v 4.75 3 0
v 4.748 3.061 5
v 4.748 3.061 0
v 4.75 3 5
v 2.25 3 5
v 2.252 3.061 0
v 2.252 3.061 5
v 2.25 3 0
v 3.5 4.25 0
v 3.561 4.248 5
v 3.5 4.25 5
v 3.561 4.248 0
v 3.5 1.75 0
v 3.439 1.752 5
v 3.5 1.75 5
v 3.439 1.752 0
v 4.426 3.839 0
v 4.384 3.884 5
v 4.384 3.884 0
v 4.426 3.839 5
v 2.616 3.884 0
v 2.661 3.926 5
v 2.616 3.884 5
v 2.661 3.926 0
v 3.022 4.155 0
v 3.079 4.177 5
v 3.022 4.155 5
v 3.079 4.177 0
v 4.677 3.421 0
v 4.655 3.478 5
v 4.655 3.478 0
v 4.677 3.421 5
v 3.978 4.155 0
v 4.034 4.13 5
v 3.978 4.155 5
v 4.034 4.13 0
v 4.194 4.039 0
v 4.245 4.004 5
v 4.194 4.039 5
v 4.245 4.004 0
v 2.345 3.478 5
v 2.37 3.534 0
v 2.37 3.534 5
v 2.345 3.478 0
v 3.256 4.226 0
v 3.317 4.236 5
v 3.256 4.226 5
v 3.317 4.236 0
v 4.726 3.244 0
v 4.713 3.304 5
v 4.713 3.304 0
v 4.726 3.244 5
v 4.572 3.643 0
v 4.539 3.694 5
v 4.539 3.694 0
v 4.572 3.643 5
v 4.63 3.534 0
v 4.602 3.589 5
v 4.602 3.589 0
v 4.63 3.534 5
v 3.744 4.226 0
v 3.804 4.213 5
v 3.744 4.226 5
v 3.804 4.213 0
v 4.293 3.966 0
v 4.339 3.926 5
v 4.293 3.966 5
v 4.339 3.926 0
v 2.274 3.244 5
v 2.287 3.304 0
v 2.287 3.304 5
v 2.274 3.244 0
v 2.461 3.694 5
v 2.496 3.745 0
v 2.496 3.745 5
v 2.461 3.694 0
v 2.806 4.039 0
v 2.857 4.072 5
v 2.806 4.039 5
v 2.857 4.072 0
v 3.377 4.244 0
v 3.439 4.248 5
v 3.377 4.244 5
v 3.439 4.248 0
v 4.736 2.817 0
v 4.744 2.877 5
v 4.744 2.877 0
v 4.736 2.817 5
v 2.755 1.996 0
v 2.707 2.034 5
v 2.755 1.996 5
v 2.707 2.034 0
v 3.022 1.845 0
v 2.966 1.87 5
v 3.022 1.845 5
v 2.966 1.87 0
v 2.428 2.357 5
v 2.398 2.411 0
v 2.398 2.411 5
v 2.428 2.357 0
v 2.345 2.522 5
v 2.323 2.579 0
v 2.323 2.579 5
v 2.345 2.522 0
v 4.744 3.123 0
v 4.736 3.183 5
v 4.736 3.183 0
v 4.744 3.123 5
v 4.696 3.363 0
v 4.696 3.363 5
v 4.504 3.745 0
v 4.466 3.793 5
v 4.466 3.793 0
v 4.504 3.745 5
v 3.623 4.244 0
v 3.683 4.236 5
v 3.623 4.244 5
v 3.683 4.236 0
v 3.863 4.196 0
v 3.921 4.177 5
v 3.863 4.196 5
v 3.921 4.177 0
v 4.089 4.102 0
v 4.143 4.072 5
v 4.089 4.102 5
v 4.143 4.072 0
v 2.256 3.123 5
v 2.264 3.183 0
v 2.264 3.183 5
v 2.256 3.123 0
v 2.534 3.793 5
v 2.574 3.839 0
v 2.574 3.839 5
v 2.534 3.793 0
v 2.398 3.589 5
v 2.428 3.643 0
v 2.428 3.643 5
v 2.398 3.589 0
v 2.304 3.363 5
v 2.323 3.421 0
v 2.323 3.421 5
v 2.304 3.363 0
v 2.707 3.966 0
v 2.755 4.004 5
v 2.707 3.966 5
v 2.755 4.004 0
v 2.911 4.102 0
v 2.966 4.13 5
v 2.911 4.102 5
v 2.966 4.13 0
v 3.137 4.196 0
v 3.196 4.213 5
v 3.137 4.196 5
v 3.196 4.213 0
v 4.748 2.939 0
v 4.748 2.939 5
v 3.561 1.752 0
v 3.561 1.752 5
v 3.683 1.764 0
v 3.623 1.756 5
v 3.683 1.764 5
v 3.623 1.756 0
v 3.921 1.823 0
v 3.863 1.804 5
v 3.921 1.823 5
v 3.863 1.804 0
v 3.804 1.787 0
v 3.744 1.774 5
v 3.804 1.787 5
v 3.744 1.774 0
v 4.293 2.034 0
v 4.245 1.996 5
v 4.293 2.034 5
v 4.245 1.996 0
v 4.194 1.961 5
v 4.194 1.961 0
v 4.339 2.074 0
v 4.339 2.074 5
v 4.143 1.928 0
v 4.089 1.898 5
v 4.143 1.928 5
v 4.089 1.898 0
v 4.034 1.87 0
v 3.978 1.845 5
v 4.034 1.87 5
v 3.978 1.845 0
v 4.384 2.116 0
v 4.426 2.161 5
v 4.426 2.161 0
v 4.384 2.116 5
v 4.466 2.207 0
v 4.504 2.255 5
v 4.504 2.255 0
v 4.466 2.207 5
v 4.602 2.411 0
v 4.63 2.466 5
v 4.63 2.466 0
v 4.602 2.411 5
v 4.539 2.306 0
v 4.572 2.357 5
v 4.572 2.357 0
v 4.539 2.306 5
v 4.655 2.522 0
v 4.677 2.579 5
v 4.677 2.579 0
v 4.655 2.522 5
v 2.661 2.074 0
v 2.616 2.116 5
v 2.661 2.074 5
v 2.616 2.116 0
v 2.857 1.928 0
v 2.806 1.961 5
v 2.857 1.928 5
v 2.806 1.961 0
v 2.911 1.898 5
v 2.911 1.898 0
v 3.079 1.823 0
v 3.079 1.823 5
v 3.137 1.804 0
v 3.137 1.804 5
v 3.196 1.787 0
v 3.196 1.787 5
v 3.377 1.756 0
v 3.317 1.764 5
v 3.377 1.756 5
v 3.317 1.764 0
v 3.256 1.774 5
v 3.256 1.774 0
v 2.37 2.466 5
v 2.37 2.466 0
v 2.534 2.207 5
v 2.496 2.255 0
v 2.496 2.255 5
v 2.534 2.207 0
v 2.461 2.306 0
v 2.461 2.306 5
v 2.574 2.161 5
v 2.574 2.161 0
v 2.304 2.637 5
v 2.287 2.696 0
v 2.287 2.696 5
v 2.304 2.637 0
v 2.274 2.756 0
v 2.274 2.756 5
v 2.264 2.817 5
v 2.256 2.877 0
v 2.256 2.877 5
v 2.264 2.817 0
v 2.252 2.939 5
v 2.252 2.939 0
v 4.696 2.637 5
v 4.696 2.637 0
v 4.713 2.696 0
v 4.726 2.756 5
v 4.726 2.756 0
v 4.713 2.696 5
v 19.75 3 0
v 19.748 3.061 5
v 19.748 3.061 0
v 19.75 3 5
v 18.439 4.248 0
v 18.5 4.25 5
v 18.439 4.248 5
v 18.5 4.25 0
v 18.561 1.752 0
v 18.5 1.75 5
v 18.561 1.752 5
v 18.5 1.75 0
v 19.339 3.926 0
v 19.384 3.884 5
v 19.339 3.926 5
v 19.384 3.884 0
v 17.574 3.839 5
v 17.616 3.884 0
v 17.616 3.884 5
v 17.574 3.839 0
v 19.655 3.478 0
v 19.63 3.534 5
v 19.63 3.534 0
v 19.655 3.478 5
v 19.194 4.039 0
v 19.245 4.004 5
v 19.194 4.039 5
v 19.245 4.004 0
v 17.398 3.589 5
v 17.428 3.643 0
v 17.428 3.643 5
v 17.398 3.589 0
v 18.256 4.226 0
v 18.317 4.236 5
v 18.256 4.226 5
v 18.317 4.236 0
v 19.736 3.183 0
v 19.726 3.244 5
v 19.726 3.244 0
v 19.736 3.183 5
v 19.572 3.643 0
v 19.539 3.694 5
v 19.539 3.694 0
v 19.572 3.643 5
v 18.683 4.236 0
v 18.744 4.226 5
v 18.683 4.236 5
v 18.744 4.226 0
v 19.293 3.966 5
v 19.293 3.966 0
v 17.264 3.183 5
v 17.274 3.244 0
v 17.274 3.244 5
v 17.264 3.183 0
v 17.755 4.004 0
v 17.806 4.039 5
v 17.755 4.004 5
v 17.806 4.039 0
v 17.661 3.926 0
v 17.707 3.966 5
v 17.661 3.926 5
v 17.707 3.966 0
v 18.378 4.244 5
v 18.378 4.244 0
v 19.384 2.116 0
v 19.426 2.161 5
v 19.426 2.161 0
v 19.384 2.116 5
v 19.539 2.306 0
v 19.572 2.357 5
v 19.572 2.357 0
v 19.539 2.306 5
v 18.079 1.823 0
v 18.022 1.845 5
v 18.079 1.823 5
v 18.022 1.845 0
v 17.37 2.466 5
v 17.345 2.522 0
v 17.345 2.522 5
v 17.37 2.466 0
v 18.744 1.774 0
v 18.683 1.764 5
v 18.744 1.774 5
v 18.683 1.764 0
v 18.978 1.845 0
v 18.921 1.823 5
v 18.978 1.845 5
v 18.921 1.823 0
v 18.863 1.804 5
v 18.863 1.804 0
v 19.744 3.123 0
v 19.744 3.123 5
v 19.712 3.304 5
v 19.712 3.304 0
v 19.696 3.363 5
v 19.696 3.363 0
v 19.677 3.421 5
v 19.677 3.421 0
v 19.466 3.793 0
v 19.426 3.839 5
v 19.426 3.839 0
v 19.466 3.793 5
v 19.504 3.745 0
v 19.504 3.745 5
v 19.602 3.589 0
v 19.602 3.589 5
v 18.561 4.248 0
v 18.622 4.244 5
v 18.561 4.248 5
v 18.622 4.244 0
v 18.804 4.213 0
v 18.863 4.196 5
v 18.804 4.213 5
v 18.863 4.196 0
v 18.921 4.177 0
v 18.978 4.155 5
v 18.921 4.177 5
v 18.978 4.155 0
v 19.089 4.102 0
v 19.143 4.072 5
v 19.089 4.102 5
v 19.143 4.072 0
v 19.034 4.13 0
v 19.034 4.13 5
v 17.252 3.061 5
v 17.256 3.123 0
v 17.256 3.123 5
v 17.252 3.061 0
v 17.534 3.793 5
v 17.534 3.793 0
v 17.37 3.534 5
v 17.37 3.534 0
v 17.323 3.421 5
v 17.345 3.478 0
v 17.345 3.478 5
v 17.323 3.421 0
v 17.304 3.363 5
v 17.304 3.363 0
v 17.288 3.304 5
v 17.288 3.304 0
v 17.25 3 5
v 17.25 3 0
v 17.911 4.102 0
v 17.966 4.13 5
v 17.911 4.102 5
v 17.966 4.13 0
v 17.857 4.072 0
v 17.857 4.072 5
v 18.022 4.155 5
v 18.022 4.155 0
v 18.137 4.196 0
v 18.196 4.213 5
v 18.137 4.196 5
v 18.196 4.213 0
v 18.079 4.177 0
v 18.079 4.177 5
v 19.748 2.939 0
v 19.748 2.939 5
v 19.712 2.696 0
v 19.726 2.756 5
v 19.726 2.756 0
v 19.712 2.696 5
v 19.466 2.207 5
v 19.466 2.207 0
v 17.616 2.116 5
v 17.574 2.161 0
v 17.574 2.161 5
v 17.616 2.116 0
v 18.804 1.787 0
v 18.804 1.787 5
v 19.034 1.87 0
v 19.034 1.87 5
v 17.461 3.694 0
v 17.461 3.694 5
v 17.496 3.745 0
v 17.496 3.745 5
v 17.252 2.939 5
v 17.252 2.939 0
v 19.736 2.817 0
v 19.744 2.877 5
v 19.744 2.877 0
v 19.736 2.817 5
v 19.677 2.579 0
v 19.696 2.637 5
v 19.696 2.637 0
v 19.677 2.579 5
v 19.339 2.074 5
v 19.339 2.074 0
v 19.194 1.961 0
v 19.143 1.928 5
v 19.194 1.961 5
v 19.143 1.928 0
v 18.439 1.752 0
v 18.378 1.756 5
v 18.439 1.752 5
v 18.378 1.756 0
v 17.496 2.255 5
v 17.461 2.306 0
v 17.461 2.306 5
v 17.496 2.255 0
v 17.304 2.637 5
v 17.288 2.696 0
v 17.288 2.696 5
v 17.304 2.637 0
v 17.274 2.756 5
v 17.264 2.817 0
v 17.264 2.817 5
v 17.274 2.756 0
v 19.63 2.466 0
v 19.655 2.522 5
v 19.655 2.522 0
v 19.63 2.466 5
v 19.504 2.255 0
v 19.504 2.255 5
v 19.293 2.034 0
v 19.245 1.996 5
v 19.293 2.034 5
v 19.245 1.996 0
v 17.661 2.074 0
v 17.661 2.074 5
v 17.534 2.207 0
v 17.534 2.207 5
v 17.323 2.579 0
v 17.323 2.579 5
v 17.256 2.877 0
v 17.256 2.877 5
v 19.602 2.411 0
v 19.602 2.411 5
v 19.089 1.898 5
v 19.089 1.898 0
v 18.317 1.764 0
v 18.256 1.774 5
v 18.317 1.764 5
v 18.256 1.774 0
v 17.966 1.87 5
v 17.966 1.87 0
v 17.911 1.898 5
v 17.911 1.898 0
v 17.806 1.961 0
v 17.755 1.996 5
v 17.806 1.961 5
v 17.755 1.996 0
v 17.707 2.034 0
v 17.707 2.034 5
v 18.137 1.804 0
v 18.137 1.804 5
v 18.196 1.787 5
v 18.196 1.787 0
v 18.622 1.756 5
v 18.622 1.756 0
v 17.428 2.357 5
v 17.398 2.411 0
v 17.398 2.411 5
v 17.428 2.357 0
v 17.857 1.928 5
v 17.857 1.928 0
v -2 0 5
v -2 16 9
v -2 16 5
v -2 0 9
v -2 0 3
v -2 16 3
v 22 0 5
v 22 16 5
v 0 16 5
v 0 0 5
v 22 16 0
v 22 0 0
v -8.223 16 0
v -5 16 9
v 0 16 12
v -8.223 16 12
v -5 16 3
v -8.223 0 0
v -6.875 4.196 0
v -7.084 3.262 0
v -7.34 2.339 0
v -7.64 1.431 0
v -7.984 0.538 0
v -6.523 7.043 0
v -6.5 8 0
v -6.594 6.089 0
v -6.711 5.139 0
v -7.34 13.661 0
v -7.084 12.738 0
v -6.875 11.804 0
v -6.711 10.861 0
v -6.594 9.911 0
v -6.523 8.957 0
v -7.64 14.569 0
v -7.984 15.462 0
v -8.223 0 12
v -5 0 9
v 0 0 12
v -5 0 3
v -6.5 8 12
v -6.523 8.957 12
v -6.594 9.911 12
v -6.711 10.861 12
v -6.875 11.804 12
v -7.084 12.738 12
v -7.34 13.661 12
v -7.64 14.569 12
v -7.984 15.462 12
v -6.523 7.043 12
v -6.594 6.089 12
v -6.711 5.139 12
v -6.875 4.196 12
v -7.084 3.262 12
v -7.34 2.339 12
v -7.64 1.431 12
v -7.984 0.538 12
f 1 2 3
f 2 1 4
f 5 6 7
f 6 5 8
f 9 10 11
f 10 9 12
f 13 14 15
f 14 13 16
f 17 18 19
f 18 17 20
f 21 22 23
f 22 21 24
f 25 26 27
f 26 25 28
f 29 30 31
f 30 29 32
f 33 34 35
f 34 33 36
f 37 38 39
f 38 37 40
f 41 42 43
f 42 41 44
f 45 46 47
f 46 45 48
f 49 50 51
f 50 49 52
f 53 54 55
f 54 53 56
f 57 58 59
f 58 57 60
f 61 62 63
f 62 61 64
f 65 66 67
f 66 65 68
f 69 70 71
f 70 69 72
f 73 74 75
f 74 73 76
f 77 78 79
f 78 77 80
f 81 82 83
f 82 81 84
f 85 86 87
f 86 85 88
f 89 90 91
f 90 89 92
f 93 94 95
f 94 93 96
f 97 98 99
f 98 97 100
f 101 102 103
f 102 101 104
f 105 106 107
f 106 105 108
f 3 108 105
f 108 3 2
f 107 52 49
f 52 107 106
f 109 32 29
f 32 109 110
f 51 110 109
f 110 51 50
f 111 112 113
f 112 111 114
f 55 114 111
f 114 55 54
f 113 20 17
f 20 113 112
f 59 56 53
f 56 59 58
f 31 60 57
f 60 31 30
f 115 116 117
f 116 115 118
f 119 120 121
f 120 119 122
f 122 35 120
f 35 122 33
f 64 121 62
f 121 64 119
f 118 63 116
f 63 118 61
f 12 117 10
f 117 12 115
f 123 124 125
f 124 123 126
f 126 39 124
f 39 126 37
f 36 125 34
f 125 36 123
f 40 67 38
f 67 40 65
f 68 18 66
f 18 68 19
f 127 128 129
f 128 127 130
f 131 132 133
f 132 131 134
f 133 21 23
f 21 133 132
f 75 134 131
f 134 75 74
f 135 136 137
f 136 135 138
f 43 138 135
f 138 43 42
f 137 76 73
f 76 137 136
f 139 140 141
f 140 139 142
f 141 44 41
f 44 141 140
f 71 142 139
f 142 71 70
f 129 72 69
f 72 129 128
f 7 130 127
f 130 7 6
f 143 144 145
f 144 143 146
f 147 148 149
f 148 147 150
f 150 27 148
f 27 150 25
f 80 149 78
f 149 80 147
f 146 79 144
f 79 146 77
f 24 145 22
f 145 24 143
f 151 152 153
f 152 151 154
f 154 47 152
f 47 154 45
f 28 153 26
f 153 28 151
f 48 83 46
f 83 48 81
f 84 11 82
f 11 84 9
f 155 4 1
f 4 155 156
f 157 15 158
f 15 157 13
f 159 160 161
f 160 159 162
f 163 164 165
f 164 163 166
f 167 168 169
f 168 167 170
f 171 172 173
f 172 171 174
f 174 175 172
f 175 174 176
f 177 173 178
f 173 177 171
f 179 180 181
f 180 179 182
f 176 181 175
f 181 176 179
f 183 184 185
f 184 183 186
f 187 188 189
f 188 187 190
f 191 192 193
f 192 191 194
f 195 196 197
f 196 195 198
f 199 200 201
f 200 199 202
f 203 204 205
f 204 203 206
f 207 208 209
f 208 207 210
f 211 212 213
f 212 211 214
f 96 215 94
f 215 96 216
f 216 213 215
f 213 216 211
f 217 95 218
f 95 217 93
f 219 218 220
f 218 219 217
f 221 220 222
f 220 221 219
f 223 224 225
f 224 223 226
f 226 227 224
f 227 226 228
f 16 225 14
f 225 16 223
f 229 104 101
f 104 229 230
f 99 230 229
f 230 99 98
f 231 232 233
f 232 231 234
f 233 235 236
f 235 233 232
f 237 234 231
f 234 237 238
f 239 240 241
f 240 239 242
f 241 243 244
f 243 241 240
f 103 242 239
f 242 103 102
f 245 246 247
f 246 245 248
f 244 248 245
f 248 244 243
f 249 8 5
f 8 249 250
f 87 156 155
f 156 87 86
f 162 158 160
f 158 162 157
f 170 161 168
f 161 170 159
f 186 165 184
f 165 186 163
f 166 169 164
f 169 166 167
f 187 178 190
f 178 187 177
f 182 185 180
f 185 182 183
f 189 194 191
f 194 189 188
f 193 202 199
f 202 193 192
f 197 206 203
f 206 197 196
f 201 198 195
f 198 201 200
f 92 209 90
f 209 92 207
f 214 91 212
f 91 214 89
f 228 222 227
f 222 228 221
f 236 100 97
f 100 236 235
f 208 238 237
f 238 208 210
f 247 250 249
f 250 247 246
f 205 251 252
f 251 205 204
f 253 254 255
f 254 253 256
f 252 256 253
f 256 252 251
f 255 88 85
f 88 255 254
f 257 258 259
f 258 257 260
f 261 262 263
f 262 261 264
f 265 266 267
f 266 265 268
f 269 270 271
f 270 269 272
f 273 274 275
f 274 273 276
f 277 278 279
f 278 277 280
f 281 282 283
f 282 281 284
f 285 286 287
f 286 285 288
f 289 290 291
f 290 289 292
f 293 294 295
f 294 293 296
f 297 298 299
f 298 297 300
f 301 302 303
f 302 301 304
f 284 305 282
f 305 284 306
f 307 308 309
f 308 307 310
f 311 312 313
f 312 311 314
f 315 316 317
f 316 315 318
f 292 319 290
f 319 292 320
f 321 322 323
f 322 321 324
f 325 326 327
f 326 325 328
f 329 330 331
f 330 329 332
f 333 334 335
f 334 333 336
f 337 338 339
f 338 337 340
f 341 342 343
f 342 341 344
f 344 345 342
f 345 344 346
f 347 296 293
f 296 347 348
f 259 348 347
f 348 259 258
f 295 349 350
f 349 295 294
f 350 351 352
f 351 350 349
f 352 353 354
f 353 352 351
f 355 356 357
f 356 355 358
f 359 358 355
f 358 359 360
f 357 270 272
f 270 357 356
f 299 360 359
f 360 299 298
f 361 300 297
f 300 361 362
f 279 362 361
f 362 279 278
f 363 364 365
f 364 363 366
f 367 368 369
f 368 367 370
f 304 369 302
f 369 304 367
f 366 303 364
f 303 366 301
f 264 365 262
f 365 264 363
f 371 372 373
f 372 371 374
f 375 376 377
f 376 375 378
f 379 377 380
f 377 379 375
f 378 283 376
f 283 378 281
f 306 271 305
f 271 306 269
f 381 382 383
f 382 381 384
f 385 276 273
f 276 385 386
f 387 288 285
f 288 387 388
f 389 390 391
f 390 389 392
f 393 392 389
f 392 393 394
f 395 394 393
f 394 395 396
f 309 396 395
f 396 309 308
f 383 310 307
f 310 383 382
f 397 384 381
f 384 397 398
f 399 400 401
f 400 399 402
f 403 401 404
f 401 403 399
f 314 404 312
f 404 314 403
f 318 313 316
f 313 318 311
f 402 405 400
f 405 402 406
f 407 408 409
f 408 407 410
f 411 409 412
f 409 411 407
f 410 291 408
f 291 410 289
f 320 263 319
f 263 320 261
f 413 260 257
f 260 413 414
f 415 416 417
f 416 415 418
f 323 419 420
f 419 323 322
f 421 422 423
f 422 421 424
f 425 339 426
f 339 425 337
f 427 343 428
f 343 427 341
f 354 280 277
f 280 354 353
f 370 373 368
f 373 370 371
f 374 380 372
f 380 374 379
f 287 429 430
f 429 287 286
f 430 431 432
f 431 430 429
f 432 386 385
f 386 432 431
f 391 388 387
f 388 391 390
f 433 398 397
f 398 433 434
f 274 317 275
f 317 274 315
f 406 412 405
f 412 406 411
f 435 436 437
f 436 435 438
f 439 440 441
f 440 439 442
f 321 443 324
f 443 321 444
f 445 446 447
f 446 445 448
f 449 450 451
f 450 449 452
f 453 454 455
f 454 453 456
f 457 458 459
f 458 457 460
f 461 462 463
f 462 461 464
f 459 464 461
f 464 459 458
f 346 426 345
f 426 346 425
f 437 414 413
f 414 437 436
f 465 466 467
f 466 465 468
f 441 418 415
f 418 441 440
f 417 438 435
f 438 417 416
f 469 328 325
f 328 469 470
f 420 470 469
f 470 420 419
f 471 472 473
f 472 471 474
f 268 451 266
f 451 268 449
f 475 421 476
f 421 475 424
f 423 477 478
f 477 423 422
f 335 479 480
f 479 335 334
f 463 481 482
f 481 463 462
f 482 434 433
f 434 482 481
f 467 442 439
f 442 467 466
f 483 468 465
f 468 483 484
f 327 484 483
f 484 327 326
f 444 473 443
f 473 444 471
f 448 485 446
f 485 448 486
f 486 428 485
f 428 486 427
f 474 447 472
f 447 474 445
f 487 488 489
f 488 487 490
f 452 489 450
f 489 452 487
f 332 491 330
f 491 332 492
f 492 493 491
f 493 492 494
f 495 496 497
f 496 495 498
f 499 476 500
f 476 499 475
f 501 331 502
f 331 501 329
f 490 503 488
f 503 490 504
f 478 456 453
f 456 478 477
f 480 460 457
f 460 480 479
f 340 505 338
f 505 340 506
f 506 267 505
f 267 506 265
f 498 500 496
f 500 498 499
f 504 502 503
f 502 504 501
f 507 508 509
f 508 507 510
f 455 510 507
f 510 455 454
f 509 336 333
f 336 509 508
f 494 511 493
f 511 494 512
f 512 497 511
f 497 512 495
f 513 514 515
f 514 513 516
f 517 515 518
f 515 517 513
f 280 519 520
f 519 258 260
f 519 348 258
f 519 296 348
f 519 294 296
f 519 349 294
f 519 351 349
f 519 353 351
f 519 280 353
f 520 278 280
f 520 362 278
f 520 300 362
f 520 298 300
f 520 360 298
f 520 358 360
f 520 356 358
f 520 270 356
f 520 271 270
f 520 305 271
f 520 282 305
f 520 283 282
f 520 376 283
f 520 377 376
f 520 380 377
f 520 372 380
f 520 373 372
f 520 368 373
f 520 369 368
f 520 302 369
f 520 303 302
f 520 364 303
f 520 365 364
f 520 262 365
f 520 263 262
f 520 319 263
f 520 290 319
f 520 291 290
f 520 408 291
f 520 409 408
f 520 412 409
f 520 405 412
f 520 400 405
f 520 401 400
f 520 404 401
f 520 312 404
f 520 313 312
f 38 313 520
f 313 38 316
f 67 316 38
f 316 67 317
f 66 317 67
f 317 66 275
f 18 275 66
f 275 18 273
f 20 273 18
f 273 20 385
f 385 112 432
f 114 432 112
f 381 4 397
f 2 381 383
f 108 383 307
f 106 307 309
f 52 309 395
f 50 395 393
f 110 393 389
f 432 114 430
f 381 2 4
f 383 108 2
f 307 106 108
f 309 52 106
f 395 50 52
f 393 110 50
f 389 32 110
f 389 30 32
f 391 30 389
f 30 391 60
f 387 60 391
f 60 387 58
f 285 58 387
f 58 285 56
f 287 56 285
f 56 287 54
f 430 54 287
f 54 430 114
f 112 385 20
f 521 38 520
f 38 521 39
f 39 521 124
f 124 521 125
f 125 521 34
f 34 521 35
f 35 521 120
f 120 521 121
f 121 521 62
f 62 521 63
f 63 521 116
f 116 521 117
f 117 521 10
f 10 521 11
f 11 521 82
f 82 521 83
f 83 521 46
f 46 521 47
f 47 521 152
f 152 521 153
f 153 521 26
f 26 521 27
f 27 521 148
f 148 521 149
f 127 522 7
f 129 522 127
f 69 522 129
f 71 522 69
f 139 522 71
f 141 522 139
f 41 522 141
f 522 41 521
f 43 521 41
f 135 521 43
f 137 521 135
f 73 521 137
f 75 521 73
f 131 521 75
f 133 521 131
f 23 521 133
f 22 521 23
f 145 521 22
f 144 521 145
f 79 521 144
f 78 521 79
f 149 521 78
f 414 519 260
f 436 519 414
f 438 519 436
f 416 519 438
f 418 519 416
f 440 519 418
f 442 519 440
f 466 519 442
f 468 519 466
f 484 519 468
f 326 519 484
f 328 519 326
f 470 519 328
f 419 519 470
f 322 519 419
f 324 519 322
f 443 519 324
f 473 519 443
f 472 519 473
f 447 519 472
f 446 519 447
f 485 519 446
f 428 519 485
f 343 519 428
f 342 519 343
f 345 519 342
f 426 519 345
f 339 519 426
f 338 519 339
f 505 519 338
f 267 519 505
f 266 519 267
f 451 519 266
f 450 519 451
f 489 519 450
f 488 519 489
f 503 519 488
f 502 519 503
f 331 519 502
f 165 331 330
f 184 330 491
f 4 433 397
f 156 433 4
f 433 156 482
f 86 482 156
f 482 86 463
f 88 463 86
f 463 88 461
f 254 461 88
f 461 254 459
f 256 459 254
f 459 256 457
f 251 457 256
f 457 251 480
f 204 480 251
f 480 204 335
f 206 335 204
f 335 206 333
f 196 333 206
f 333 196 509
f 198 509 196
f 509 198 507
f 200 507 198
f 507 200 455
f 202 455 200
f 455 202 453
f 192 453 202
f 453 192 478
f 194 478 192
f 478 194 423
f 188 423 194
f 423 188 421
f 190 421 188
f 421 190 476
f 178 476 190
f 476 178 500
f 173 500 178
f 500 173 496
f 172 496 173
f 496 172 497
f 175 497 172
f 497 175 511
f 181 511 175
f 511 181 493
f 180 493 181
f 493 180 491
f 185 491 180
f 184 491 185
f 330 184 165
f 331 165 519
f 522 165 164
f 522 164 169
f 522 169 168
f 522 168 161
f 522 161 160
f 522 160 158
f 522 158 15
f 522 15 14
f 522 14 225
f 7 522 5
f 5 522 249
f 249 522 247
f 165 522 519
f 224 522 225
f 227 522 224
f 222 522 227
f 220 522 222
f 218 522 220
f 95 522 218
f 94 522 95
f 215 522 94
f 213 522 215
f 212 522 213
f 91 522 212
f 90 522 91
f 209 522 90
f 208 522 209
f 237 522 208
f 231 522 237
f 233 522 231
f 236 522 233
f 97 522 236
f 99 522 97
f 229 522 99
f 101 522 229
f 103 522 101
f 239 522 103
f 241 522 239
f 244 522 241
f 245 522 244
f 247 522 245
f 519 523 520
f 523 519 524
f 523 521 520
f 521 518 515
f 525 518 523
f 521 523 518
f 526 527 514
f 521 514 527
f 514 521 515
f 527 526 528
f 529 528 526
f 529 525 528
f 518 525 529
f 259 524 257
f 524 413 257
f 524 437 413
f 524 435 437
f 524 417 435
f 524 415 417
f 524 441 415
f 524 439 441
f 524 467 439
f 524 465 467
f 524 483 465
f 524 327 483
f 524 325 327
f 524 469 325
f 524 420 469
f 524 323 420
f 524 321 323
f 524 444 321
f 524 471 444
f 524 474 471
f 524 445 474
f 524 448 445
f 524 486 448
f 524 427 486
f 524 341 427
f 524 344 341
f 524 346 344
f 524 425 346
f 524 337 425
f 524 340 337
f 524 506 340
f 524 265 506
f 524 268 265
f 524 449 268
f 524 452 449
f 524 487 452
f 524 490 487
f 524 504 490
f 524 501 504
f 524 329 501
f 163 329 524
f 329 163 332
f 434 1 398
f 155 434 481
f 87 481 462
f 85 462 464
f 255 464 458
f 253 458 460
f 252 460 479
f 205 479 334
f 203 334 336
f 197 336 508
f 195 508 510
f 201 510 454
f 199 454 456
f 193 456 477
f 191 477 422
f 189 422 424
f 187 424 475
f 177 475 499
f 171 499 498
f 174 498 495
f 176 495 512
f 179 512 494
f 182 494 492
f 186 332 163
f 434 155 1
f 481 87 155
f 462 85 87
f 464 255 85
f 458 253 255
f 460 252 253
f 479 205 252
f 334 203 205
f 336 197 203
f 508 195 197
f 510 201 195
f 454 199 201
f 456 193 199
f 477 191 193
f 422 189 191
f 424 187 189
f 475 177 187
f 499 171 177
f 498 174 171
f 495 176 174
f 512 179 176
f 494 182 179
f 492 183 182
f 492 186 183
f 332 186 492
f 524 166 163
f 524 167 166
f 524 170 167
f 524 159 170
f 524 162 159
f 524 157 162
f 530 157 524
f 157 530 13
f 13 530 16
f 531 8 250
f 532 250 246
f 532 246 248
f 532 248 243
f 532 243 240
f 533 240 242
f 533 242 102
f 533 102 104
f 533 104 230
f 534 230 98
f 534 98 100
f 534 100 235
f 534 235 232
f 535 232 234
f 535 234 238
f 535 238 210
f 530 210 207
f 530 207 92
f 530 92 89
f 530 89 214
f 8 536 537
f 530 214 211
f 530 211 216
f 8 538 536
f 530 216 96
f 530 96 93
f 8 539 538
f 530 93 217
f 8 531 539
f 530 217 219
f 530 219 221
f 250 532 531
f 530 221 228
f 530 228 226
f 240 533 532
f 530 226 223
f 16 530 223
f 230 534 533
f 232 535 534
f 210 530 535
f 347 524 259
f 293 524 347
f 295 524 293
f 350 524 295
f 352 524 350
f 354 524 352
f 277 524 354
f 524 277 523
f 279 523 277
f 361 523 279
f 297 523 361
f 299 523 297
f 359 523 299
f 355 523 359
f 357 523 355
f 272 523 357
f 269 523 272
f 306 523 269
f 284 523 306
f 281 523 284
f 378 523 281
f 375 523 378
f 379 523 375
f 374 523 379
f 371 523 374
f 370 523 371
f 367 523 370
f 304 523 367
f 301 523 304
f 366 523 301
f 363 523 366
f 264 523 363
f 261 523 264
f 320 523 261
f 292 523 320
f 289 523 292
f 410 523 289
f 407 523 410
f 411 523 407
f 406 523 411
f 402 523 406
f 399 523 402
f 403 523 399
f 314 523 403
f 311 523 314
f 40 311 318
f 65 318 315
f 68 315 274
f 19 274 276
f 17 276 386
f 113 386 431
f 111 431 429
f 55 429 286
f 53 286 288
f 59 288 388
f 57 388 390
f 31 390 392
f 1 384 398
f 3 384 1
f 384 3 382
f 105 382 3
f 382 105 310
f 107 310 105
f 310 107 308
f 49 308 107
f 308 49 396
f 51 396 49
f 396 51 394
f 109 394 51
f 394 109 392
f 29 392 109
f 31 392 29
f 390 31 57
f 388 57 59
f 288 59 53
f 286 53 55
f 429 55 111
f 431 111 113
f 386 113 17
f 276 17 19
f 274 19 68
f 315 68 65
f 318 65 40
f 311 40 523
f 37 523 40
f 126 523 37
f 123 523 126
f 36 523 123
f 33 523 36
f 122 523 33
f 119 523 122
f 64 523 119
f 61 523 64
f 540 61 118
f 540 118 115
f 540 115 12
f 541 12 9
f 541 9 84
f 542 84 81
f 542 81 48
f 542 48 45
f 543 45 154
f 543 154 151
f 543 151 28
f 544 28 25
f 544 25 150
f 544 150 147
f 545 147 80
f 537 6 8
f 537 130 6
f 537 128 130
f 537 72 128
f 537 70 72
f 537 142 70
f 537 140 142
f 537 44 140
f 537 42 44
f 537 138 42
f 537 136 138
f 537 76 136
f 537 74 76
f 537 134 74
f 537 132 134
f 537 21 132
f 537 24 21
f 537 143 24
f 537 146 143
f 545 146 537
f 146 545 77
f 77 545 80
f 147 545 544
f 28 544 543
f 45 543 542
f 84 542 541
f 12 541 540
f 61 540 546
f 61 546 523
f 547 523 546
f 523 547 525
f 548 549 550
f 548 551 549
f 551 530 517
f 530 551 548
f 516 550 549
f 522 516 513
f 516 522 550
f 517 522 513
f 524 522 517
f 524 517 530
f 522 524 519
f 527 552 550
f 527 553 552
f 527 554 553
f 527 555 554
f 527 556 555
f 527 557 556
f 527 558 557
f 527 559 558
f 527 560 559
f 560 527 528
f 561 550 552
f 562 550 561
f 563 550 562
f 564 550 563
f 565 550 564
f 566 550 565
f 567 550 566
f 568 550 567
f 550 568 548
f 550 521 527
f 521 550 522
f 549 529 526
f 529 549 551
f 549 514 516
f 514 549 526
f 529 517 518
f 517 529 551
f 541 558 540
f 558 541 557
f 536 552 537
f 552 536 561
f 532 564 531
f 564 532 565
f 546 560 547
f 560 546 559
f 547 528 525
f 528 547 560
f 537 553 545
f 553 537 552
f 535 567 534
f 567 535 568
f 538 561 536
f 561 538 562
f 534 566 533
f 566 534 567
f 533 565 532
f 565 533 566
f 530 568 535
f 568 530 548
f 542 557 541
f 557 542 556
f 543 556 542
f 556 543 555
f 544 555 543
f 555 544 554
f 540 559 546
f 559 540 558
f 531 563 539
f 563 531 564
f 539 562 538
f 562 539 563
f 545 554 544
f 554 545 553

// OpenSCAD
$fn = 128;

module base(){
        translate([-2,0,0])
        cube([24,16,5]);
}

module cylinder_cut(){
    translate([-26,8,-2])
    cylinder(h=30,d=39);
}

module hellerman_cut(){
    translate([-5,-2,3])
    cube([3,20,6]);
}

module holes(){

    translate([3.5,3,-12])
    union(){
        translate([0,0,10])
        cylinder(h=8,d=2.5);

        translate([15,0,10])
        cylinder(h=8,d=2.5);
    }
}

module base_furada(){
    difference(){

        base();
        holes();
    }
}

module acoplador(){

    difference(){
        translate([-10,0,0])
        cube([10,16,12]);

        hellerman_cut();

        cylinder_cut();
    }

}

acoplador();

base_furada();
